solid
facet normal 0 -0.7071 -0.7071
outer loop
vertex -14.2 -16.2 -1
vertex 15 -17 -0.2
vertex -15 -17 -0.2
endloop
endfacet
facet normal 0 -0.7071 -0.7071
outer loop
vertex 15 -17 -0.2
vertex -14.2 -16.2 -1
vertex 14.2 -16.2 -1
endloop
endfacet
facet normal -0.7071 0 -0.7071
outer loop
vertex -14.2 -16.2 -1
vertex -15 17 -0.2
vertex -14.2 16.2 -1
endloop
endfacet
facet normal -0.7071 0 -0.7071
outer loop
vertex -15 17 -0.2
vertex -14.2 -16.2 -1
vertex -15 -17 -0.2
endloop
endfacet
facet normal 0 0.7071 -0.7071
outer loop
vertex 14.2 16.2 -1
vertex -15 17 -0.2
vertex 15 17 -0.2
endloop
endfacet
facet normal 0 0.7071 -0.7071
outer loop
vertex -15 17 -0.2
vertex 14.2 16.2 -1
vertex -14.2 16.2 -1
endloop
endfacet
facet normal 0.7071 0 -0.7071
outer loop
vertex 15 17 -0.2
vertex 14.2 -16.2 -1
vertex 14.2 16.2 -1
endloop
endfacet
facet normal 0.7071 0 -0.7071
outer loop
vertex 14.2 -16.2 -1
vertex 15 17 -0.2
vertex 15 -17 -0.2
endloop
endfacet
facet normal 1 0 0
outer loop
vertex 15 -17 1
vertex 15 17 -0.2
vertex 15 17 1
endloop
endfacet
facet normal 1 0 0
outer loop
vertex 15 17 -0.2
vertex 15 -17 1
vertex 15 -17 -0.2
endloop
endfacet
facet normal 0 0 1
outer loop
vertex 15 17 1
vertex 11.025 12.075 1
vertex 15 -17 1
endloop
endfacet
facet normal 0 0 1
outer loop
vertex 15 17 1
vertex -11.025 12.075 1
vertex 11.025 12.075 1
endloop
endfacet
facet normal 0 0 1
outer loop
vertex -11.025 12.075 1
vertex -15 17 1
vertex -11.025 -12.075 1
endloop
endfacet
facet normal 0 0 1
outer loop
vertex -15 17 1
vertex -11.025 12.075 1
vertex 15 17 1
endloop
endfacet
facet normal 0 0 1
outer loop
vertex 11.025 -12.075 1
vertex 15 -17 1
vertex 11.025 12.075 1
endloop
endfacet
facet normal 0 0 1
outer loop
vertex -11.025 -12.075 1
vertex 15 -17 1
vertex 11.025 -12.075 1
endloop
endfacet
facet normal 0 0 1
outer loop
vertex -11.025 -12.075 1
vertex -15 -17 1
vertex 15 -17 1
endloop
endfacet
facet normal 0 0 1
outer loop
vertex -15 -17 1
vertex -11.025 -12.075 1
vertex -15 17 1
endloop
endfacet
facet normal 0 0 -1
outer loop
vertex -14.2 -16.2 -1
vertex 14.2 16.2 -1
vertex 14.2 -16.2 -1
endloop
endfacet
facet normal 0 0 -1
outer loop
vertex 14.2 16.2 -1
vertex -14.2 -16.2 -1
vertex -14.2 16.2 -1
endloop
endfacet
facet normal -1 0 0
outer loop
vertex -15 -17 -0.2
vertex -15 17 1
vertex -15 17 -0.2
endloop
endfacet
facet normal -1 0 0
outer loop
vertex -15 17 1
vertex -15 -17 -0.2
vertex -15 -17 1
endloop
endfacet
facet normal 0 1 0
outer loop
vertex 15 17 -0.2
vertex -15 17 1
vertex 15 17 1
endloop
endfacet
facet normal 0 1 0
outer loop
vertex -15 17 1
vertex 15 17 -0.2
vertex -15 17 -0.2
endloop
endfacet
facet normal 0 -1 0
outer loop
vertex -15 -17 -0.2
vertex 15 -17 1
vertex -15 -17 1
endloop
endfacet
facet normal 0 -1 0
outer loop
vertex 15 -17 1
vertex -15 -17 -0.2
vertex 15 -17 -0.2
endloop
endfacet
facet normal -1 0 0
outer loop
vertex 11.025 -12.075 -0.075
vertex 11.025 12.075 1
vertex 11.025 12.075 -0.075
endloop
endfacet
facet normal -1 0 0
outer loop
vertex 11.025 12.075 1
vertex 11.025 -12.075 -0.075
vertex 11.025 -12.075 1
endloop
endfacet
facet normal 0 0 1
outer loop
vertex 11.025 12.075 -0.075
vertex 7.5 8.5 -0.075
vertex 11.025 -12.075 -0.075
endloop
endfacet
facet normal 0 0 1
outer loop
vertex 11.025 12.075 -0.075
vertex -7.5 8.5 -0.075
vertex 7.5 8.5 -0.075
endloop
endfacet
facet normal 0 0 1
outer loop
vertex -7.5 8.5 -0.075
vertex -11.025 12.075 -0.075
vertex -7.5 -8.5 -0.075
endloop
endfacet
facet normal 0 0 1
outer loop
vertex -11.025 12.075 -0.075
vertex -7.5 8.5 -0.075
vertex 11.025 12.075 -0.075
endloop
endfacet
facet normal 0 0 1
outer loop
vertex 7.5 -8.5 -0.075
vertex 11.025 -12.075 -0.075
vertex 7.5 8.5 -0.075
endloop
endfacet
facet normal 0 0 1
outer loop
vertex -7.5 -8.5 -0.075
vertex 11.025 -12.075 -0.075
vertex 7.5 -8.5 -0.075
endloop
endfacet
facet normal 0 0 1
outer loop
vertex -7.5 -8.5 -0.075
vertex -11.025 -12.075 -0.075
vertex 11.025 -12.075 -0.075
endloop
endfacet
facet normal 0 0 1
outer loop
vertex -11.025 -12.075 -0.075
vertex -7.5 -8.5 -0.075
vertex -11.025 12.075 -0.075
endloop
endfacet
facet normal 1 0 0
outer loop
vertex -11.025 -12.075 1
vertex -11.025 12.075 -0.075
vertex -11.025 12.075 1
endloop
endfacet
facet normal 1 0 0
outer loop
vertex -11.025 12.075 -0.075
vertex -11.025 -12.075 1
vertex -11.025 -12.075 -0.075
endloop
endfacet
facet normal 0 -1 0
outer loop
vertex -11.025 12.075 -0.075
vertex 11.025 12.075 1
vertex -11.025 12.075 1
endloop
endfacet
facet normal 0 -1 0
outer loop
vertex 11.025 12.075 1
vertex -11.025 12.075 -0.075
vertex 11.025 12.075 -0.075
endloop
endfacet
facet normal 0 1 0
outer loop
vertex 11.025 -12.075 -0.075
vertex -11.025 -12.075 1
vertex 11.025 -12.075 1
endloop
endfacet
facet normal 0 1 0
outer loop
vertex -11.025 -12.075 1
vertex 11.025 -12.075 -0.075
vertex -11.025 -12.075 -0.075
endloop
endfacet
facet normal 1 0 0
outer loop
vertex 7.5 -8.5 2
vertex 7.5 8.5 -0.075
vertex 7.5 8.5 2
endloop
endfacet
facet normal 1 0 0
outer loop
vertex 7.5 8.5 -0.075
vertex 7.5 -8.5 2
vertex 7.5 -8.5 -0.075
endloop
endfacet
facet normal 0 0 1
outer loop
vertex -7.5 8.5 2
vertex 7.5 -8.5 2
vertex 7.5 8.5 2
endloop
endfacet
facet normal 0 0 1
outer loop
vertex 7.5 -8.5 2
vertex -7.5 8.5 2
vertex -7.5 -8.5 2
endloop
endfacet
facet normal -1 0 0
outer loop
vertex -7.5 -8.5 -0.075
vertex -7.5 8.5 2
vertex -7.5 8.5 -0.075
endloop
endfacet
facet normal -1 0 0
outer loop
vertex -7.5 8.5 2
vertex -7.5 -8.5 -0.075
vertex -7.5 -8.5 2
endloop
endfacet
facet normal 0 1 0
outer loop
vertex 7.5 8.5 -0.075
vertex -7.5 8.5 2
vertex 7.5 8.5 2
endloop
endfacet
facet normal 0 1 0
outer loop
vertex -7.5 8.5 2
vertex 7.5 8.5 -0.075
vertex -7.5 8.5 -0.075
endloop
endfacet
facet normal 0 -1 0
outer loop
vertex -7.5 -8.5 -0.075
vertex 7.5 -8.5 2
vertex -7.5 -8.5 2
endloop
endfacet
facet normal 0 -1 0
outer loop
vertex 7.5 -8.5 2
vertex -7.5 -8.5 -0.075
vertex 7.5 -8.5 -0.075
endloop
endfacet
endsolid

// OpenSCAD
//  Characters    Behavior
//     //            ignore, comment
//     $fa           minimum angle
//     *             disable
//     !             show only
//     #             highlight / debug
//     %             transparent / background
// http://www.openscad.org/cheatsheet/index.html

include <BOSL/constants.scad>
use <BOSL/masks.scad>
use <BOSL/math.scad>
use <BOSL/metric_screws.scad>
use <BOSL/shapes.scad>
use <BOSL/transforms.scad>

// Globals

convexity = 4;
number_of_fragments = 0.30 * 360;
eps = 0.001;

$fn = number_of_fragments;

hole_factor = 1.1;
no_head = 0;
chamfer = 0.8;

// Functions

// Objects

module mounting_bracket(
    length,
    width,
    thickness,
    metric_size
)
{
    let (
        hole_size = metric_size * hole_factor,
        hole_margin = hole_size + 3,
        cyl_move = max(length/2, width/2)
    )
    difference()
    {
        union()
        {
            // Main body
            difference()
            {
                color("yellowgreen")
                ymove(-3+chamfer)
                union()
                {
                    cuboid(
                        size = [length, width-3, thickness],
                        chamfer = chamfer
                    );
                }

                color("honeydew")
                union()
                {
                    xmove(0.9 * cyl_move + 1)
                    ymove(0.9 * cyl_move + 1)
                    scale([1, 1.2, 1])
                    cyl(
                        h = thickness + 1,
                        d = 2 * cyl_move
                    );
                }
            }
        }

        // Cut mounting holes
        color("lavender")
        union()
        ymove(-3)
        {
            ymove(-width/4)
            xspread(
                spacing = length / 2,
                n = 2
            )
            screw(
                screwsize = hole_size,
                screwlen = thickness,
                headsize = get_metric_socket_cap_diam(metric_size + 1),
                headlen = get_metric_socket_cap_height(metric_size + 1)
            );

            xmove(-length/4)
            yspread(
                spacing = 20,
                n = 2
            )
            screw(
                screwsize = hole_size,
                screwlen = thickness,
                headsize = get_metric_socket_cap_diam(metric_size + 1),
                headlen = get_metric_socket_cap_height(metric_size + 1)
            );
        }
    }
}

module restraining_rod(
    length,
    width,
    thickness
)
{
    difference()
    {
        color("deepskyblue")
        union()
        {
            cuboid(
                size = [length, width, thickness],
                chamfer = chamfer,
                edges = EDGE_BOT_FR + EDGE_BOT_BK
            );
        }

        color("lightcyan")
        zmove(-thickness * 1/3)
        union()
        {
            tube(
                h = length + 1,
                od = 3   * thickness,
                id = 5/3 * thickness,
                orient = ORIENT_X,
                align = ALIGN_CENTER
            );
        }
    }
}

module joiner(
    width,
    gap,
    thickness,
    restraint_thickness
)
{
    difference()
    {
        color("yellow")
        union()
        {
            ymove(-3/2)
            cuboid(
                size = [thickness, width - 3, gap + 3 * restraint_thickness],
                chamfer = chamfer
            );
        }

        color("khaki")
        union()
        {
            scale([1, 2.3, 1.2])
            zmove(gap + 3 * restraint_thickness - (width - thickness)/2)
            ymove(restraint_thickness + thickness)
            cyl(
                l = thickness + 1,
                d = width - chamfer,
                orient = ORIENT_X,
                align = ALIGN_CENTER
            );
        }
    }
}

module drive_cable_restraint(
    gap,
    travel,
    width,
    thickness,
    bracket_length,
    bracket_width,
    bracket_thickness,
    bracket_metric_size
)
{
    difference()
    {
        union()
        {
            // Inner guide
            restraining_rod(travel, width, thickness);

            // Outer guide
            zmove(gap + thickness)
            zflip()
            restraining_rod(travel, width, thickness);

            // Right bracket
            zmove(-bracket_thickness)
            ymove((bracket_width - width) / 2)
            xmove((travel + bracket_length)/2)
            {
                mounting_bracket(
                    length = bracket_length,
                    width = bracket_width,
                    thickness = bracket_thickness,
                    metric_size = bracket_metric_size
                );

                zmove((gap + 2 * thickness) / 2)
                xmove(-bracket_length / 2)
                joiner(
                    width = bracket_width,
                    gap = restraint_gap,
                    thickness = restraint_thickness - 2,
                    restraint_thickness = restraint_thickness
                );
            }

            // Left bracket
            zmove(-bracket_thickness)
            ymove((bracket_width - width) / 2)
            xmove(-(travel + bracket_length)/2)
            {
                xflip()
                mounting_bracket(
                    length = bracket_length,
                    width = bracket_width,
                    thickness = bracket_thickness,
                    metric_size = bracket_metric_size
                );

                zmove((gap + 2 * thickness) / 2)
                xmove(bracket_length / 2)
                joiner(
                    width = bracket_width,
                    gap = restraint_gap,
                    thickness = restraint_thickness - 2,
                    restraint_thickness = restraint_thickness
                );
            }
        }

        // Entrance
        union()
        {
            xmove(-(travel)/2 + (restraint_thickness + chamfer))
            zmove(gap + 2.2*thickness)
            zmove(-thickness-2) cuboid([gap, 2*gap, 2*gap]);

            zmove(gap + 2*thickness + 3)
            ymove(2)
            xmove(-(travel)/2 + (restraint_thickness + chamfer))
            {
                zflip()
                xrot(30)
                narrowing_strut(
                    w = 2*gap,
                    l = 2*thickness + 1,
                    wall = thickness,
                    ang = 45
                );

            }
        }
    }
}

rod_thickness = 3;
esp12s_width = 15;
esp12s_length = 17;

union()
{
    color("DeepSkyBlue")
    difference()
    {
        union()
        {
            cuboid(
                size = [2 * esp12s_width, 2 * esp12s_length, 2],
                chamfer = chamfer,
                edges = EDGES_BOTTOM
            );
        }

        union()
        {
            zmove(0.5 * rod_thickness)
            {
                cuboid(
                    size = 1.05 * [esp12s_width + 2*rod_thickness, esp12s_length + 2*rod_thickness, rod_thickness]
                );
            }
        }
    }

    zmove((rod_thickness - 2)/2)
    cuboid(
        size = [esp12s_width, esp12s_length, rod_thickness]
    );
}
